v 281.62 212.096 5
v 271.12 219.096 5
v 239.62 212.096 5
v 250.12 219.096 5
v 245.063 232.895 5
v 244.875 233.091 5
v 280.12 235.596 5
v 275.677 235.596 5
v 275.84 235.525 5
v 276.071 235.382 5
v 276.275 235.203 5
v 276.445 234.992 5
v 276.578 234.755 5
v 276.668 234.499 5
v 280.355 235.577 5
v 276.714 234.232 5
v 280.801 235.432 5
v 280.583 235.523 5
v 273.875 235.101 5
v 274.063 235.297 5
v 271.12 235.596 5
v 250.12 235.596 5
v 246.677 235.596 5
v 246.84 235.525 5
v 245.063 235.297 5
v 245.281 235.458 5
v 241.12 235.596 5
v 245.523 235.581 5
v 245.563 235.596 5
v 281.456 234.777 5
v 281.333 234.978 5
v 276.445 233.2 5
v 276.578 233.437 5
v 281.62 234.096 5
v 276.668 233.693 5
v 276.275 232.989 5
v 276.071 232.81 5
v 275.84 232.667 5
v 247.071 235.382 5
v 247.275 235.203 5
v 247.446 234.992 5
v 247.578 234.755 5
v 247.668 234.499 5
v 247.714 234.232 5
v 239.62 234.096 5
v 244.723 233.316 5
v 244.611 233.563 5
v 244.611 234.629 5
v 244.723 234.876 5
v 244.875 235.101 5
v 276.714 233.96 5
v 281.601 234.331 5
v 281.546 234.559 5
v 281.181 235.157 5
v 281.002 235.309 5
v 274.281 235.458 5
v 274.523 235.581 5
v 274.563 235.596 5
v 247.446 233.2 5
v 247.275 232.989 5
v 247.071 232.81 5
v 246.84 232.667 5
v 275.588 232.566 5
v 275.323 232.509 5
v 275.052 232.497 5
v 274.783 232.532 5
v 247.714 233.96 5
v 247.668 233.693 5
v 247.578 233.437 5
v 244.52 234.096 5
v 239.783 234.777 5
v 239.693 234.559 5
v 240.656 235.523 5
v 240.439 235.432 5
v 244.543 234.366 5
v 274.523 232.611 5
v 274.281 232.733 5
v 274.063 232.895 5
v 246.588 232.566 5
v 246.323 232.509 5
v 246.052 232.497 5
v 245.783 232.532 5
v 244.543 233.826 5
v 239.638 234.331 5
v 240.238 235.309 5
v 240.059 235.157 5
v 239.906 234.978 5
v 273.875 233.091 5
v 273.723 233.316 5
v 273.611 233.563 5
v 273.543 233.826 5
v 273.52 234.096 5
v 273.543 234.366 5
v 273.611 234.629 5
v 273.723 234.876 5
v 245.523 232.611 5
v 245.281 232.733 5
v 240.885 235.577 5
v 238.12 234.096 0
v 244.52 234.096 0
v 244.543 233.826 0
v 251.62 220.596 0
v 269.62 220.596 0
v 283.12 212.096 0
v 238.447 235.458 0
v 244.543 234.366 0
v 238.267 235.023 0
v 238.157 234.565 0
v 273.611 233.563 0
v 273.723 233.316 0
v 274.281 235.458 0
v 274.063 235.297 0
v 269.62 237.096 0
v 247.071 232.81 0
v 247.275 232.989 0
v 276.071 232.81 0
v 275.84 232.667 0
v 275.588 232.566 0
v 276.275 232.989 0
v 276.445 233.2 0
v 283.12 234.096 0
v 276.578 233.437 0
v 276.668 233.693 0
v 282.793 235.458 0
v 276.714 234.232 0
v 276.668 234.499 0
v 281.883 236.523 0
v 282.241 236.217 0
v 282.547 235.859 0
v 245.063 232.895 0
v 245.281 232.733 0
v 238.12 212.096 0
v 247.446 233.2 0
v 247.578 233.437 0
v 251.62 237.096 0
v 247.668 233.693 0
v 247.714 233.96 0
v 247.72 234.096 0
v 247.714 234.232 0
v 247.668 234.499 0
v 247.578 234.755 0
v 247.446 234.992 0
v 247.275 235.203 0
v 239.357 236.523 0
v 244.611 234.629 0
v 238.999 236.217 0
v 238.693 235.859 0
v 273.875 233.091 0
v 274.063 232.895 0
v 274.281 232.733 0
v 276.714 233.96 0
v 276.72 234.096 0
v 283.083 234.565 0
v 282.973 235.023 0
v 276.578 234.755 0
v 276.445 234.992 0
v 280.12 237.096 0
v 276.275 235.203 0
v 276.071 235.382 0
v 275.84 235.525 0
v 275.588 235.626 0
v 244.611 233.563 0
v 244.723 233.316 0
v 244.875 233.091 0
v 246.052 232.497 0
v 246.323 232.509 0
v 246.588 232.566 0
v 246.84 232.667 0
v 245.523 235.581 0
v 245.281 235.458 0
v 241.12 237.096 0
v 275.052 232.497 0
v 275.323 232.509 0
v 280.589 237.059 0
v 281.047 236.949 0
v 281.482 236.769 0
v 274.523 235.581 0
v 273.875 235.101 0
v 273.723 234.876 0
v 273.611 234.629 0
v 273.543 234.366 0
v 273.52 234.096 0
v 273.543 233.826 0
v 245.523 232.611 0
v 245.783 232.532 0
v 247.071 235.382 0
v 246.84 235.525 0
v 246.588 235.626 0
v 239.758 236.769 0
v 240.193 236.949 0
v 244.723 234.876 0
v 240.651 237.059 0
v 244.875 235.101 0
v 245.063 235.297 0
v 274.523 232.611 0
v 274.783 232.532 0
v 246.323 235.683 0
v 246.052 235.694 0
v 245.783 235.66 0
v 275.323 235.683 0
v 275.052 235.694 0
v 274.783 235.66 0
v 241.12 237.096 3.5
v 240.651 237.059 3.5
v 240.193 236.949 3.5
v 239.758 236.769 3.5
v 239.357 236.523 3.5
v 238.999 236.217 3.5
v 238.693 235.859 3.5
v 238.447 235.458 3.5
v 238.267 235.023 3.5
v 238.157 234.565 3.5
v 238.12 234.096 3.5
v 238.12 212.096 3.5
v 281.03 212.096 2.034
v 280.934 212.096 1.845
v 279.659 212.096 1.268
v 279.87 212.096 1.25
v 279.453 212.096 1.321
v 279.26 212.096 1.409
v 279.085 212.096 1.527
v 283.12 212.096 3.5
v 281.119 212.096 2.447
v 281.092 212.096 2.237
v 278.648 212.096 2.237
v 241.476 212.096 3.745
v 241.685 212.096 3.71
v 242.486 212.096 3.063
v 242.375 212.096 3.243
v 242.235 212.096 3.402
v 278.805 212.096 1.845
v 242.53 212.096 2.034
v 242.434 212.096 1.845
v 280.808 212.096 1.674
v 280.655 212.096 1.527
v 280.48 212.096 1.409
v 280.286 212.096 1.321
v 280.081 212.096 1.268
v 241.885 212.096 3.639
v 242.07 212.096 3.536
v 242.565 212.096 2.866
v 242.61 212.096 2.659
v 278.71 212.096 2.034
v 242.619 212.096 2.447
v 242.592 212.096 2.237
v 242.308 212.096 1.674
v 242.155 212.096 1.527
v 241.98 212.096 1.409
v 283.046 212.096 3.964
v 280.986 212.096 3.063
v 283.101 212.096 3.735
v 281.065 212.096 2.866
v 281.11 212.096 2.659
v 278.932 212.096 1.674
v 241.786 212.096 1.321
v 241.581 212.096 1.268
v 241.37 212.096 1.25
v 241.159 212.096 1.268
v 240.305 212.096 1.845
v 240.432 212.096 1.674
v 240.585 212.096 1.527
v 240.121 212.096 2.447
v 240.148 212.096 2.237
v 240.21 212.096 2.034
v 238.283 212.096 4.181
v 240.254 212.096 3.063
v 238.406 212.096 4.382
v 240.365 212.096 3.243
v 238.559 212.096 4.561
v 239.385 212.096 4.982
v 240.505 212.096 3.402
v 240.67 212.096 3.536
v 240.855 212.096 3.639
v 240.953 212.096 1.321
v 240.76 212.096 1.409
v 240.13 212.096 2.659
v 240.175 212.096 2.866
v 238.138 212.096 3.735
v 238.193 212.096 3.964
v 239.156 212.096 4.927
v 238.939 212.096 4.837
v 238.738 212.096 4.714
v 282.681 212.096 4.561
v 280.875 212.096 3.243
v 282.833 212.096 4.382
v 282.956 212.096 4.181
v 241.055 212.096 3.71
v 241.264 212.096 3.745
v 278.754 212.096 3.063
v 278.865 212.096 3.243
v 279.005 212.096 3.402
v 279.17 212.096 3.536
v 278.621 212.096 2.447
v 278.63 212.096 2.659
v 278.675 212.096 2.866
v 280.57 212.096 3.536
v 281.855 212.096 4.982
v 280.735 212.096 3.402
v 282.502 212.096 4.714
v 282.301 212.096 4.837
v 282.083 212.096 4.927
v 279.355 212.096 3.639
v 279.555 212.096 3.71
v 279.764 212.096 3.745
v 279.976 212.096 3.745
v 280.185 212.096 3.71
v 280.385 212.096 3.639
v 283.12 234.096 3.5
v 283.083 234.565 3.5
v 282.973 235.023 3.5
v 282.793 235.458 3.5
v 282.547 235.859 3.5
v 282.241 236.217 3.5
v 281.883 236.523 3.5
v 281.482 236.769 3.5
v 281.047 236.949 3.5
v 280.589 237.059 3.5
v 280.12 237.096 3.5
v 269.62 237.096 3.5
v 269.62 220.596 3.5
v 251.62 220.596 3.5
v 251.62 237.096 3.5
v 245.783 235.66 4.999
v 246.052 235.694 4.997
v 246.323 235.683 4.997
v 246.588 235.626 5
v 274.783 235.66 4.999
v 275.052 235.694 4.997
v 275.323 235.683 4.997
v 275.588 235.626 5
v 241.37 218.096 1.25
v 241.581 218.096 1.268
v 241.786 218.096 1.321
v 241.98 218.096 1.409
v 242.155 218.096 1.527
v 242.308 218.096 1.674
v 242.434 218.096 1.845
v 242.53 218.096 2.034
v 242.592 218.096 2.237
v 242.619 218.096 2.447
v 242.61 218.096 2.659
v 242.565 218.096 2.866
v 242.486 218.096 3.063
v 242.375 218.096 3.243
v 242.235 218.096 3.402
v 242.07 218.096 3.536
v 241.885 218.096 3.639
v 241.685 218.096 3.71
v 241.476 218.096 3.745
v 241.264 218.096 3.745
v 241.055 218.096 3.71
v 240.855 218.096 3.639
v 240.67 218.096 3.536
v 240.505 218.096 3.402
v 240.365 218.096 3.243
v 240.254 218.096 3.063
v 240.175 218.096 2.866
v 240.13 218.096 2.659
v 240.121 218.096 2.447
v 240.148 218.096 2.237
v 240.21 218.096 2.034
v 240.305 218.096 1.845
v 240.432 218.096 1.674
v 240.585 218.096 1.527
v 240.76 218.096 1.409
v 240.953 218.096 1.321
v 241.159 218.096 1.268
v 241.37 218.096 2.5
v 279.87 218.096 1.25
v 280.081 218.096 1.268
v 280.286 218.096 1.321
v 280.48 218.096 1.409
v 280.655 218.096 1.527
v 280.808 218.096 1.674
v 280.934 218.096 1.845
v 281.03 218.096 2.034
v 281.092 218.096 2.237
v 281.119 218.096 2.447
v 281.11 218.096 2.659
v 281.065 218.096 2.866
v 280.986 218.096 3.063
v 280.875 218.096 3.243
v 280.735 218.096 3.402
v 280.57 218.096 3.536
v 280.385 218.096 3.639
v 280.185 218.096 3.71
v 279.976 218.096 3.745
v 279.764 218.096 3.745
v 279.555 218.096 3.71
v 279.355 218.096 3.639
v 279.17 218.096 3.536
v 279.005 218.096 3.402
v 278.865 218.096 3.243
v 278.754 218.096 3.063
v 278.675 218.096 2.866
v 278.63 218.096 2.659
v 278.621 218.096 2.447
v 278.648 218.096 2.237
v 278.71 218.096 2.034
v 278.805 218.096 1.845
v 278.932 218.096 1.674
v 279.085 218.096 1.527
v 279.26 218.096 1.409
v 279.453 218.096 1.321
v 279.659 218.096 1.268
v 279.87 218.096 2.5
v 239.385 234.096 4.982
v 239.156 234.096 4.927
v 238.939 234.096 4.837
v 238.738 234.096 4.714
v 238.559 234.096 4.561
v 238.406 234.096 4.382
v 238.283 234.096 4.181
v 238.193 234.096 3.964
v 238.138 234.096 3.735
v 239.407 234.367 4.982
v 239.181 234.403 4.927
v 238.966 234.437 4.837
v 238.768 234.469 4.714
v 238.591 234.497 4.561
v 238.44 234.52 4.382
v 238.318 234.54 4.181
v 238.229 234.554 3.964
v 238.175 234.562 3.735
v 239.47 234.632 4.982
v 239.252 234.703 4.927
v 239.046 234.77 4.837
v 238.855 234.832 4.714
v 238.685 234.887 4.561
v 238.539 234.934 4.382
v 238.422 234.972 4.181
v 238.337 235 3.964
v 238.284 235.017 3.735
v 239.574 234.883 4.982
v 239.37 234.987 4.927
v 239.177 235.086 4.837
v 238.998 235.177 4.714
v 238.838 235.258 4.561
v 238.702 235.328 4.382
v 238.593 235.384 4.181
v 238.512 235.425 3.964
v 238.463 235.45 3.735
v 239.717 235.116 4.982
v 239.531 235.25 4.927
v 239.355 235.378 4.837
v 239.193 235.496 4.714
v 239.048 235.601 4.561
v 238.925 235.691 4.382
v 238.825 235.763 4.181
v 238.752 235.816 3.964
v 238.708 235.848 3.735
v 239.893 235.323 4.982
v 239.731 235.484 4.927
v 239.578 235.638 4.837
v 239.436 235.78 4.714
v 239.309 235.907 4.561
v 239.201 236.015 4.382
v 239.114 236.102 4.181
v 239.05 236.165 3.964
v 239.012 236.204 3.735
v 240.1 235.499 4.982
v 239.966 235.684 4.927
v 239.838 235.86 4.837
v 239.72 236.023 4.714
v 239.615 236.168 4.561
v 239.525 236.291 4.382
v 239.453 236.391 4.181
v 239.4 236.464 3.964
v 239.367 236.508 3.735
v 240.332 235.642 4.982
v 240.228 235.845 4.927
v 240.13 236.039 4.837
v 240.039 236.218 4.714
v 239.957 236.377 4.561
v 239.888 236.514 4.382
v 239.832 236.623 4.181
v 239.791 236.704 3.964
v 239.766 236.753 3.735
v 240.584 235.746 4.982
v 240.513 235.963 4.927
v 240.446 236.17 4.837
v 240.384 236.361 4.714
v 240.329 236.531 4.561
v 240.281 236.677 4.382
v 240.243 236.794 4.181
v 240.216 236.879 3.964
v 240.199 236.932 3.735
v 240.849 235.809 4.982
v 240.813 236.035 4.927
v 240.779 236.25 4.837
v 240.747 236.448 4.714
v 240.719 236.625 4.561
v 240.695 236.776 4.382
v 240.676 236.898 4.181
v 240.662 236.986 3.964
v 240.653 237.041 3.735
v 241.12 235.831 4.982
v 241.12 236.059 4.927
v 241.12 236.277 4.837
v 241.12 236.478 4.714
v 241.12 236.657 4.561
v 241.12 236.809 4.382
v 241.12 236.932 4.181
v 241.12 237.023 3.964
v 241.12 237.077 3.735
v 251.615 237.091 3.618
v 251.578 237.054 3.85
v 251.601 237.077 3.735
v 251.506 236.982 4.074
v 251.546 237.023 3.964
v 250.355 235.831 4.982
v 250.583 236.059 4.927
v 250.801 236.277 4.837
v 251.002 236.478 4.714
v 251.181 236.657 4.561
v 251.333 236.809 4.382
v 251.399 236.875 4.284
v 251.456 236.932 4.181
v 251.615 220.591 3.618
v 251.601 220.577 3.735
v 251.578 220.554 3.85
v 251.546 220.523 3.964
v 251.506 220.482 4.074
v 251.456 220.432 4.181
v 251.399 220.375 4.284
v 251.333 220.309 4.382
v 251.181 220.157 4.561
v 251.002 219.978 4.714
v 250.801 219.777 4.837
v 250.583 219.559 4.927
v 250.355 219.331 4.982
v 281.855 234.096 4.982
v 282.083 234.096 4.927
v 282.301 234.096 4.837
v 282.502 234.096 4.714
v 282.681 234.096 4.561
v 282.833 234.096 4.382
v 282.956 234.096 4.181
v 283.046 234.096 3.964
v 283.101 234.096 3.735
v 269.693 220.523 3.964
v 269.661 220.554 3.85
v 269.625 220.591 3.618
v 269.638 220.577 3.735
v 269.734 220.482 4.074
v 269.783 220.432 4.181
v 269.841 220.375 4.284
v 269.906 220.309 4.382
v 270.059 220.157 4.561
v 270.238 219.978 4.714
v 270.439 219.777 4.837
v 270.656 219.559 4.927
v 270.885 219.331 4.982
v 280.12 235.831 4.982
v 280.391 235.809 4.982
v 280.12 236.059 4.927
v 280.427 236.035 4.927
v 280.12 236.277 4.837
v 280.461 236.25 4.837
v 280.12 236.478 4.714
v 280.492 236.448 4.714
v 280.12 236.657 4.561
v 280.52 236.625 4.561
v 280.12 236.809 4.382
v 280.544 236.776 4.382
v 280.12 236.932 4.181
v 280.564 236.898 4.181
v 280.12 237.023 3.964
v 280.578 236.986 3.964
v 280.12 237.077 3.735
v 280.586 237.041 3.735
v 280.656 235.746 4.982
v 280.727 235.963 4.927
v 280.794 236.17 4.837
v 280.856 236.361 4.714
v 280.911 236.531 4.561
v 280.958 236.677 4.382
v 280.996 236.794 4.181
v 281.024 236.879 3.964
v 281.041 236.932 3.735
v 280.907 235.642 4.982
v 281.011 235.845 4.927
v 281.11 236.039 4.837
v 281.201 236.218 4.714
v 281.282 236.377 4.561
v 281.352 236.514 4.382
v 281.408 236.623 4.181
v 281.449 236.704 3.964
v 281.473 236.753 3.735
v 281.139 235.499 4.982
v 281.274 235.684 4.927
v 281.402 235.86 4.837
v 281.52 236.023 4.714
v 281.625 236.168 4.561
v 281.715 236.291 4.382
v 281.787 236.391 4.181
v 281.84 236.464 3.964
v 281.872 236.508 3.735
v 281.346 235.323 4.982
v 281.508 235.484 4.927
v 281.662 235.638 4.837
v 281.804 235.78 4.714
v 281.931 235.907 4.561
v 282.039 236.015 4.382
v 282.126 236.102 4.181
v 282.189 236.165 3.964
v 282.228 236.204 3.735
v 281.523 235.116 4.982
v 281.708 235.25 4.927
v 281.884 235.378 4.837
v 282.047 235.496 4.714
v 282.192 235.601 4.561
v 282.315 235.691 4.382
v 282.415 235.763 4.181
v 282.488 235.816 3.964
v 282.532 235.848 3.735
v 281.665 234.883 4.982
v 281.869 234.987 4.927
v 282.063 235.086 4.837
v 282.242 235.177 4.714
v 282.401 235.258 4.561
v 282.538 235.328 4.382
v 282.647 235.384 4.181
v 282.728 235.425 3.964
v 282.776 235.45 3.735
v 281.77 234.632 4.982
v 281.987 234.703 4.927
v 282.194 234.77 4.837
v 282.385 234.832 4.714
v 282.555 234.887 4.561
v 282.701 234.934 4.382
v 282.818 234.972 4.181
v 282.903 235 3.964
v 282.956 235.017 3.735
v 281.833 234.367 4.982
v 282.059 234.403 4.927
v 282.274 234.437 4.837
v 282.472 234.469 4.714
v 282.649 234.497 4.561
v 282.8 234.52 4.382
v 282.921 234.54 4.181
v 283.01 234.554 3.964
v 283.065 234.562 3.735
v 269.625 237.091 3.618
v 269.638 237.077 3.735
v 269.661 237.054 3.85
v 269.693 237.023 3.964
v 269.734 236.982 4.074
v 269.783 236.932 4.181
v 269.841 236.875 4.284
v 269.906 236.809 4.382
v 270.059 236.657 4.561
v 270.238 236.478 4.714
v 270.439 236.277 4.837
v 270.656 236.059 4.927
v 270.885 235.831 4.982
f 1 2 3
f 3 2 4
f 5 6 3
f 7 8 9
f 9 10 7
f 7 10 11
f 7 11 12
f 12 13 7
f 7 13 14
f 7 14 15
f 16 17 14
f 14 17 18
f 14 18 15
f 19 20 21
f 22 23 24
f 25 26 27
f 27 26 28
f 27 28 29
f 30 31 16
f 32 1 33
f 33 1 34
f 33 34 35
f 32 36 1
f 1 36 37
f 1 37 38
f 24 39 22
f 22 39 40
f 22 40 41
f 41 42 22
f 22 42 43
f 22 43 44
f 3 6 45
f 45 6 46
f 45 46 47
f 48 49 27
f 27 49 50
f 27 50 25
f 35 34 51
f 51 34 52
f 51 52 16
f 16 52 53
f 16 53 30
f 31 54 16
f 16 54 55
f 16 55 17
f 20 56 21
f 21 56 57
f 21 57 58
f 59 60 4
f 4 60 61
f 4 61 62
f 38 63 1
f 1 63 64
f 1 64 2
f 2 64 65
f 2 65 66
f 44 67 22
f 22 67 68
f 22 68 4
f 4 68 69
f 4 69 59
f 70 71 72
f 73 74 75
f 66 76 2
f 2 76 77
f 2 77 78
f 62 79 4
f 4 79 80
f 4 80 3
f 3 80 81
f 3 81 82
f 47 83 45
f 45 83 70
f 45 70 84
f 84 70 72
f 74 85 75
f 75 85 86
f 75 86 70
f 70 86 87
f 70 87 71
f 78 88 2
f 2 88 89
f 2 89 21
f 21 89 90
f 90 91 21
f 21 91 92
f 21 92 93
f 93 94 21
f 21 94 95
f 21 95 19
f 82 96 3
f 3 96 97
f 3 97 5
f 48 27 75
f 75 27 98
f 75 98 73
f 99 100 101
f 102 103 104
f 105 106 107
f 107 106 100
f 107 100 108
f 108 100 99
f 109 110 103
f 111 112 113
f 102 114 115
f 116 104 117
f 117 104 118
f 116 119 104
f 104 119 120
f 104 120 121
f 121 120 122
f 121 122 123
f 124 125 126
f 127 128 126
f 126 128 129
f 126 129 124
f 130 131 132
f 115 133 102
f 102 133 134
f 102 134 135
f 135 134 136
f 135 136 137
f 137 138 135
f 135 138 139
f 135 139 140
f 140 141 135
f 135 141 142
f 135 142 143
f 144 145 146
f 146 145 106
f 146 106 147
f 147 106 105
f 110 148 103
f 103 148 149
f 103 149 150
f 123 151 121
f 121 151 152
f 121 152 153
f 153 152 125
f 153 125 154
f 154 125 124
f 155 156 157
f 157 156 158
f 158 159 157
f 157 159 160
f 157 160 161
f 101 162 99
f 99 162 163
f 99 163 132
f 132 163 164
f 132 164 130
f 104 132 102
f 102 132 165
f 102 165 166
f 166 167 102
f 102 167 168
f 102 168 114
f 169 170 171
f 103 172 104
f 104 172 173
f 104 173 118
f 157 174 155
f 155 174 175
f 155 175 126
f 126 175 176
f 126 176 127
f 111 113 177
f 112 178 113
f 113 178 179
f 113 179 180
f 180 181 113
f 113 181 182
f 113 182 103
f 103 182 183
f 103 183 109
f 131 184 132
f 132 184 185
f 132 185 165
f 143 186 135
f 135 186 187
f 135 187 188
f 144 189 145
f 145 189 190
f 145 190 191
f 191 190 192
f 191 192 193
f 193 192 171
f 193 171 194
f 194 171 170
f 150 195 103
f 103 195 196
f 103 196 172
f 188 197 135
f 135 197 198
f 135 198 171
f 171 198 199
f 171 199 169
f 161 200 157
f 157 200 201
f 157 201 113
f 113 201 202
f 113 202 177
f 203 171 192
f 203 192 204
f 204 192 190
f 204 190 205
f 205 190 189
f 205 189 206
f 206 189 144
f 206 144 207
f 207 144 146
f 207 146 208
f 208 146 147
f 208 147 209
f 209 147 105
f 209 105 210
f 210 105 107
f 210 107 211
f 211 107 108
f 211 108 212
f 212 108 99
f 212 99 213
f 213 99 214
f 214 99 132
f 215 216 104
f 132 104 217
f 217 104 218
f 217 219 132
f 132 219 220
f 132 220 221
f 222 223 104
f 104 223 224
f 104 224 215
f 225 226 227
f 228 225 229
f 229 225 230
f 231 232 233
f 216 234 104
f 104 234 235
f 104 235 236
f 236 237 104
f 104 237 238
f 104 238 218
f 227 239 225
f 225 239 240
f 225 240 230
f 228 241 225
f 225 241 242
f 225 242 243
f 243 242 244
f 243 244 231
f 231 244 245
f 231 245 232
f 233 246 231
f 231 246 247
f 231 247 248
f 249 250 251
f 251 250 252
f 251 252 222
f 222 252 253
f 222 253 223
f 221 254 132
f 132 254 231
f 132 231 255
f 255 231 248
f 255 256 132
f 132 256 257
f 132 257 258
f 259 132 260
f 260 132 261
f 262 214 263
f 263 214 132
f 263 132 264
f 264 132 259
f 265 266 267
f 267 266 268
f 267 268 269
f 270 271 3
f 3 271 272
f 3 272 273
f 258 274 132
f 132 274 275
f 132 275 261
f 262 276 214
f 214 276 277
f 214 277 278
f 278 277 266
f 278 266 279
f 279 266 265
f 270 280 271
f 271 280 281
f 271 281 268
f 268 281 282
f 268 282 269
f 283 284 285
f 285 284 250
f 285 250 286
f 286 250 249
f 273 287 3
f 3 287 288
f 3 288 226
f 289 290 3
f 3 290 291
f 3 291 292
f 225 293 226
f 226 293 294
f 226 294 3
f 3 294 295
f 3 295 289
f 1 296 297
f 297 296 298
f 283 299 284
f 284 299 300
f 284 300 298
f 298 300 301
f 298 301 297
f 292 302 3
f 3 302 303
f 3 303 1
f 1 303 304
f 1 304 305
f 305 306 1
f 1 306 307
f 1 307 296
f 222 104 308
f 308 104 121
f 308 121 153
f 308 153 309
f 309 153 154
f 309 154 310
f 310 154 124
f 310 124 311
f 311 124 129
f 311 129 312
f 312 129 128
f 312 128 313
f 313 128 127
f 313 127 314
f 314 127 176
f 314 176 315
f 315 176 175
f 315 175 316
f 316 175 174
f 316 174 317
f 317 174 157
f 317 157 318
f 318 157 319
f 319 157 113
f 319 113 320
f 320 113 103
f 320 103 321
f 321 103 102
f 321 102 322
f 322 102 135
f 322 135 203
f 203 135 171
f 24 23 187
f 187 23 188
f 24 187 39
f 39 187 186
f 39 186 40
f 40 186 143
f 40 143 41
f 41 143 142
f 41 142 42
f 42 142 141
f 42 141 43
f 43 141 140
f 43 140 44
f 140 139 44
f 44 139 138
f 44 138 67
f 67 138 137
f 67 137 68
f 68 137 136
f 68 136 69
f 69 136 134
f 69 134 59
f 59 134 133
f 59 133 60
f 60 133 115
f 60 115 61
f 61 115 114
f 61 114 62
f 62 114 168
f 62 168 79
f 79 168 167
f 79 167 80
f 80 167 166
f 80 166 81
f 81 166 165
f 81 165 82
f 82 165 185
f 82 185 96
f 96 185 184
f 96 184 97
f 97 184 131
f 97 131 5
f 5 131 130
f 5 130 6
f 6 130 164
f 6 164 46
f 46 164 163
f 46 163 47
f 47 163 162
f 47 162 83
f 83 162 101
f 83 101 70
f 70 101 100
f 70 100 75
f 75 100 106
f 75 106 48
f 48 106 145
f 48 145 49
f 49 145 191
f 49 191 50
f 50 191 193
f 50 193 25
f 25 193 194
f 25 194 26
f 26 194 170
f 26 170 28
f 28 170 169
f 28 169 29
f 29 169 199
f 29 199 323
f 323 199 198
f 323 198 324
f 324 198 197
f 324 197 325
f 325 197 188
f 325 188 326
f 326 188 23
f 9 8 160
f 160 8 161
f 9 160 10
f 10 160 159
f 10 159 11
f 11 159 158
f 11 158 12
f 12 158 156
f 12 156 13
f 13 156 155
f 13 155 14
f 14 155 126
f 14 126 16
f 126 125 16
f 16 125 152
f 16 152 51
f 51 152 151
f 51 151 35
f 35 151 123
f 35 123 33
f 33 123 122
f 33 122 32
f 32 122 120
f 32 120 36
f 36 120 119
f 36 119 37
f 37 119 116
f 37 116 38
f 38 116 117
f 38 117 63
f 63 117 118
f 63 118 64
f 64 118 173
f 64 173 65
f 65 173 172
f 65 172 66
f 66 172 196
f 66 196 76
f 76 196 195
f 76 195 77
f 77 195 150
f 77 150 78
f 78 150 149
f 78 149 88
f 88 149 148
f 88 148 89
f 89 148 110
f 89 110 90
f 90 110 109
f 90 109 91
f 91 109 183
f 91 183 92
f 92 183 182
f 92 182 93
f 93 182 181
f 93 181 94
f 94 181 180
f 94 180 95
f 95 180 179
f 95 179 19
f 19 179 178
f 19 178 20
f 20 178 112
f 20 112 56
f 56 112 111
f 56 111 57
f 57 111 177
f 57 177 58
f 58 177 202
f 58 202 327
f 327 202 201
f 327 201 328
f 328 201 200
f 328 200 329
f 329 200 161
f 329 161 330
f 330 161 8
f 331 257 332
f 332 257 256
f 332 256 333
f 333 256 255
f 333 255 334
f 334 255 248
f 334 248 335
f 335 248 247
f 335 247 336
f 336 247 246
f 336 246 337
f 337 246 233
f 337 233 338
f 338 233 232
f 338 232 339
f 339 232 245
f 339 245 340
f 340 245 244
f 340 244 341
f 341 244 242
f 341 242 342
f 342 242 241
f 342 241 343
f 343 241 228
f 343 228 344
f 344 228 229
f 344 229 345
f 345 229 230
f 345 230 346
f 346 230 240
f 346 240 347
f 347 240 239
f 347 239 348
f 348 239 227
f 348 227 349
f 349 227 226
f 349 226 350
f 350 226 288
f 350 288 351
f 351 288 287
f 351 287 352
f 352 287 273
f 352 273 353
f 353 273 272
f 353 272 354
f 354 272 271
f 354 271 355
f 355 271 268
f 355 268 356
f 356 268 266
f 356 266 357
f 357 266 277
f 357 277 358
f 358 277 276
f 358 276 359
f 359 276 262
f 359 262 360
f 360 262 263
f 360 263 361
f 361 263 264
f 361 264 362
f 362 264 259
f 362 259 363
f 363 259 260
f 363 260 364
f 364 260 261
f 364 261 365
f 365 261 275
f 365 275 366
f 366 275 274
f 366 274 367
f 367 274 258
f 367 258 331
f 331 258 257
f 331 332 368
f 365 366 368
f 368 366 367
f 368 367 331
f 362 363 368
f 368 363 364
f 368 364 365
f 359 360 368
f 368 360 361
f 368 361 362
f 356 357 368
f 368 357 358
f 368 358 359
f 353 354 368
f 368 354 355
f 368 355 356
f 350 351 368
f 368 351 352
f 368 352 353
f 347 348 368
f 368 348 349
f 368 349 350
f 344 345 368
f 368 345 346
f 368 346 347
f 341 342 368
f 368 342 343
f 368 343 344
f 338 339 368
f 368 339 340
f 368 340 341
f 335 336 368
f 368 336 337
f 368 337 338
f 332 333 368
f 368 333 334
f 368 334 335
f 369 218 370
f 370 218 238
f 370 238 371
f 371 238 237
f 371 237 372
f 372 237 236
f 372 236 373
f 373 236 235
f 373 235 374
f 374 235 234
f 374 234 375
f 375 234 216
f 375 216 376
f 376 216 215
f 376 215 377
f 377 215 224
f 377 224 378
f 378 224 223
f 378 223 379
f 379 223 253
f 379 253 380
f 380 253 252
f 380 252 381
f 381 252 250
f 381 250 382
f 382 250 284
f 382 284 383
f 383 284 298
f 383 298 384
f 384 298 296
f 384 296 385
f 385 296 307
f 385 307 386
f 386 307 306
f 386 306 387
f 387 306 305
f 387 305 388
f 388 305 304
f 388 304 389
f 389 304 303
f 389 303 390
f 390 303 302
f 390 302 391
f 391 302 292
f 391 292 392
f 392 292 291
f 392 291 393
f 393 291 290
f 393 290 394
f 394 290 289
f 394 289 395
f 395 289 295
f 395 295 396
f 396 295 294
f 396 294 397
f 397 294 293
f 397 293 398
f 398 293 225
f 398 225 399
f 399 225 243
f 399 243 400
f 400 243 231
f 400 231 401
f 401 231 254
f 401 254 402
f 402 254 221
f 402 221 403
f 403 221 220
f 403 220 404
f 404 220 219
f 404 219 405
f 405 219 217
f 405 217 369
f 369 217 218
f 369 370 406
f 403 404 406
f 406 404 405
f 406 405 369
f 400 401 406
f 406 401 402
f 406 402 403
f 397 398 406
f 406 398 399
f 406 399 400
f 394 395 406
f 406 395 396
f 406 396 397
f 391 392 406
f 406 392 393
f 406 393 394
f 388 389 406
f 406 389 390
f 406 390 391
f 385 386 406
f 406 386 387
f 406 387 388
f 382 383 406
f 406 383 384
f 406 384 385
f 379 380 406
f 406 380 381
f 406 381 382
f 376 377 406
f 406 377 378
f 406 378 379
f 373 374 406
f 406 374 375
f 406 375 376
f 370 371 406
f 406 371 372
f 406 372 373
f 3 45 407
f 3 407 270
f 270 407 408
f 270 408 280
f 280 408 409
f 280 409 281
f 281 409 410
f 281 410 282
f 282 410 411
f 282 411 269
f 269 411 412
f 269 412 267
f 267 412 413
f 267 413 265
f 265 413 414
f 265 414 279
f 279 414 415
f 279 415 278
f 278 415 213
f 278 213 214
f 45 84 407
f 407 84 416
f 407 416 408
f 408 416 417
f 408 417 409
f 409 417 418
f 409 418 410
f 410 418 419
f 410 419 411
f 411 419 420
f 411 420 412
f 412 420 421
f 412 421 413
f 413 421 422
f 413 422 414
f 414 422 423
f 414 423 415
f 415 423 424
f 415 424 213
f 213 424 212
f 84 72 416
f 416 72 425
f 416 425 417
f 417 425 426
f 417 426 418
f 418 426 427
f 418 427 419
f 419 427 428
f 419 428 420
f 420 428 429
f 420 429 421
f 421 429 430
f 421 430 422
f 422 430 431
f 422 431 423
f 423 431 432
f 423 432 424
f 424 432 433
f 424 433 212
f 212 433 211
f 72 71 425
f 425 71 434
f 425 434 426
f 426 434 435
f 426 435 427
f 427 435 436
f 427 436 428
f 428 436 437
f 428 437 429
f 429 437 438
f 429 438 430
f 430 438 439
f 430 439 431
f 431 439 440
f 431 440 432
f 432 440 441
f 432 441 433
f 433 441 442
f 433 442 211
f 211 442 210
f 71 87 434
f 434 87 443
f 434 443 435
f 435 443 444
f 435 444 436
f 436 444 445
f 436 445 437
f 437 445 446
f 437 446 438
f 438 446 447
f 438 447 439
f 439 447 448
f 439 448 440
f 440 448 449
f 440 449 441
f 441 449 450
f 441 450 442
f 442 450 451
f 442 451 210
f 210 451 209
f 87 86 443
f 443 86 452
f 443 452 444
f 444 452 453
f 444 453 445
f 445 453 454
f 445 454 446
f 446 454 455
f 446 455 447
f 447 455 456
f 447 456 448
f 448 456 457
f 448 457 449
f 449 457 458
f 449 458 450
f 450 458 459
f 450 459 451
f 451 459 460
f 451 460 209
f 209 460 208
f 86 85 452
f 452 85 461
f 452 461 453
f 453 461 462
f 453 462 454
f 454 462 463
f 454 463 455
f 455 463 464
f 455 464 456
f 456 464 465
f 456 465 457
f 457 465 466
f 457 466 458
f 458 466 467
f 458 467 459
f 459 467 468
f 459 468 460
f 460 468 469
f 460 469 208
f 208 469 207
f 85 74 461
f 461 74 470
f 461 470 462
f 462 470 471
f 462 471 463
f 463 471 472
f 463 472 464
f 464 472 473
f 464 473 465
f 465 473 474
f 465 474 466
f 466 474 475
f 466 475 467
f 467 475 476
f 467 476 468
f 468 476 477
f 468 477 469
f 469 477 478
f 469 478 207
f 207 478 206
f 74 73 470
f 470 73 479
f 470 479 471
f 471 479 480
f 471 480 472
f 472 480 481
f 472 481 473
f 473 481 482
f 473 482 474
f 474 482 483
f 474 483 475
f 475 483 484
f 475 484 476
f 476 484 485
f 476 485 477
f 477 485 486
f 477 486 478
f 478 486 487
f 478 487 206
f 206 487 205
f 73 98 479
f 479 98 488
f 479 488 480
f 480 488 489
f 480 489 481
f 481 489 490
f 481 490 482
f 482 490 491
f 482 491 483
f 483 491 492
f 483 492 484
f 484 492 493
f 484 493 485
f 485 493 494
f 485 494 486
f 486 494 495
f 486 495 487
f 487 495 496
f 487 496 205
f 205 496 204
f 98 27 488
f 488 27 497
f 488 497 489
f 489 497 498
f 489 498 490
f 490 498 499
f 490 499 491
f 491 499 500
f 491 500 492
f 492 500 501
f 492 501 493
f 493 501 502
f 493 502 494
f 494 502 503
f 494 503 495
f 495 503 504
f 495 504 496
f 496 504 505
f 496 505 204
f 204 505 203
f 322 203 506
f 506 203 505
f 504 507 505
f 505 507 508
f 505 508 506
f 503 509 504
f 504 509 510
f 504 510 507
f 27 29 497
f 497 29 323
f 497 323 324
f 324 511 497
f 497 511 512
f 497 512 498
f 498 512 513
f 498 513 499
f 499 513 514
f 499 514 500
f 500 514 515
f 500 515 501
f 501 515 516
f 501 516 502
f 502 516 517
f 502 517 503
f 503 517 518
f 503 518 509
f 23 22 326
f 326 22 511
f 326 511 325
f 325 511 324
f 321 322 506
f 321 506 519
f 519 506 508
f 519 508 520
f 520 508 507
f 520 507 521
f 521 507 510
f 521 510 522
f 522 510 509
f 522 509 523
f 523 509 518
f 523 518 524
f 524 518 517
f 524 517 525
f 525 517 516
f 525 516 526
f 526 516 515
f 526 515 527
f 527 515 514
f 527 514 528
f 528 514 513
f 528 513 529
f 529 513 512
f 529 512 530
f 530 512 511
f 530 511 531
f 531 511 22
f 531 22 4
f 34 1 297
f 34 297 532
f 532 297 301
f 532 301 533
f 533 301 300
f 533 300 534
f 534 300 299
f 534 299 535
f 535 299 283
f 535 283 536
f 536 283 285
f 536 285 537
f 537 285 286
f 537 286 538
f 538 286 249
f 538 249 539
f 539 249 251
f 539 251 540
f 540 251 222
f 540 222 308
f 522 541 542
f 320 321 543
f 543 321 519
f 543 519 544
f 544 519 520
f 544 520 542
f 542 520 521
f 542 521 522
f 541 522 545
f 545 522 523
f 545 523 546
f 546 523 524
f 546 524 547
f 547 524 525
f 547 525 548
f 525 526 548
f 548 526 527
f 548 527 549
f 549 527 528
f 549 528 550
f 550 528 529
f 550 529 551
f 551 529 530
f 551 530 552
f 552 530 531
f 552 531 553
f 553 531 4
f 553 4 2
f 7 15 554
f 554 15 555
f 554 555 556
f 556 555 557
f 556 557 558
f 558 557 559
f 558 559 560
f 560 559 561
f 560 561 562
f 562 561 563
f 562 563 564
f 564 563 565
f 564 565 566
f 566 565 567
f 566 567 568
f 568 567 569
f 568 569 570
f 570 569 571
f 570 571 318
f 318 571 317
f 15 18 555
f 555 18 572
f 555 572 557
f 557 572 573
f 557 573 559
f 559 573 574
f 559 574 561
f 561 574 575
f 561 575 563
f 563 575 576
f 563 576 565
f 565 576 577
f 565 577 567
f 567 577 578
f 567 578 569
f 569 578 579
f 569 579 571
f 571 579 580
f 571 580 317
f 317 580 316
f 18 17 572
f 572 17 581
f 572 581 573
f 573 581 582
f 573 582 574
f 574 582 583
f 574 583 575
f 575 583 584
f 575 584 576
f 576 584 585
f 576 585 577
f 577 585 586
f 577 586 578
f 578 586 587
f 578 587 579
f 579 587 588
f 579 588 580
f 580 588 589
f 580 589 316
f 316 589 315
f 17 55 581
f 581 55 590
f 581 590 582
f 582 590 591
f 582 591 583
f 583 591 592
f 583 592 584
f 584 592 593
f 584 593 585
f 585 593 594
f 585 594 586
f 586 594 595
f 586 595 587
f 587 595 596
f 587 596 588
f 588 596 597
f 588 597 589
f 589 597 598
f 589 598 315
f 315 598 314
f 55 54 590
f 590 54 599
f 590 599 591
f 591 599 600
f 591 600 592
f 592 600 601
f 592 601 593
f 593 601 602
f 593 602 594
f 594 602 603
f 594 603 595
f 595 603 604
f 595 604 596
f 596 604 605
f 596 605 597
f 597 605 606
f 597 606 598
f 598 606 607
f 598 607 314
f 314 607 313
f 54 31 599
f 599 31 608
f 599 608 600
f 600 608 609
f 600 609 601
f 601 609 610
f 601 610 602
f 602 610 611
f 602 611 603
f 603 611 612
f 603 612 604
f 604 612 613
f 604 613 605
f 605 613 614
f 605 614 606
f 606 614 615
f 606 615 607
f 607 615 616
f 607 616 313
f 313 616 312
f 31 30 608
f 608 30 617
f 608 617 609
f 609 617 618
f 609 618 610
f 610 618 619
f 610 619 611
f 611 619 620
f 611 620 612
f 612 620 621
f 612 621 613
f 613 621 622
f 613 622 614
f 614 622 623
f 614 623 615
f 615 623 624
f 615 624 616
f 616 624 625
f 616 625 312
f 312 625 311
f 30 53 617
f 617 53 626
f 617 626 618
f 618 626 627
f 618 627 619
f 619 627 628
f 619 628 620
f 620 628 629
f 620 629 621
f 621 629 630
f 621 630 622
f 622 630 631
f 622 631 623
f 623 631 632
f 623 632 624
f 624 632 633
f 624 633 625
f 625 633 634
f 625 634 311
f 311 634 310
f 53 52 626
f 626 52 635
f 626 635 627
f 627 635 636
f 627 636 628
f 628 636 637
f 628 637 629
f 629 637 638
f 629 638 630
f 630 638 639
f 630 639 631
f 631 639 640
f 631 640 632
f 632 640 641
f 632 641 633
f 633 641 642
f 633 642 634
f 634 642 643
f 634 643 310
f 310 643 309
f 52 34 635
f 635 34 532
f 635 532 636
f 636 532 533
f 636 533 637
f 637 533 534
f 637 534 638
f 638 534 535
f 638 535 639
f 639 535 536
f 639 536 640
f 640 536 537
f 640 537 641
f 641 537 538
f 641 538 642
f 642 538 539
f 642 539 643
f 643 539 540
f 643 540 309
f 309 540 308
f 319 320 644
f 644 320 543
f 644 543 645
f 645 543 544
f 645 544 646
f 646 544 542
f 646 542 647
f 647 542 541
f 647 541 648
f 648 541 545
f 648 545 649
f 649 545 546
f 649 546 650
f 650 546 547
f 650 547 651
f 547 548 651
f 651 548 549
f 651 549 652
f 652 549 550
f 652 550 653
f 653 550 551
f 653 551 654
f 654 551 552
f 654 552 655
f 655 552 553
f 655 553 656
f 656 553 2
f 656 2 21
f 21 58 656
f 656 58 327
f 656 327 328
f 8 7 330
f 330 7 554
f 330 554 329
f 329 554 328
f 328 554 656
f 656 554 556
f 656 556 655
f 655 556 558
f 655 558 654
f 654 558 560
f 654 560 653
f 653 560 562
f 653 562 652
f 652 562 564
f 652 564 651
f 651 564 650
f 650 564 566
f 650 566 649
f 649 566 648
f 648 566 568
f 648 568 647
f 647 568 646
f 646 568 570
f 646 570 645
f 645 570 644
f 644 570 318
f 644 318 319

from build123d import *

# Parameters (mm, degrees)
MODEL_R             = 1.6
EXTRUDE_1_DEPTH     = 5
SKETCH_2_R          = 1.25
CUT_EXTRUDE_1_DEPTH = 6
FILLET_1_R          = 1.5


with BuildPart() as part:
    # Model → 凸台-拉伸1 (new body)
    with BuildSketch(Plane.XY):
        with BuildLine():
            Line((241.119901236, 237.095927438), (251.619901236, 237.095927438))
            Line((251.619901236, 237.095927438), (251.619901236, 220.595927438))
            Line((251.619901236, 220.595927438), (269.619901236, 220.595927438))
            Line((269.619901236, 220.595927438), (269.619901236, 237.095927438))
            Line((269.619901236, 237.095927438), (280.119901236, 237.095927438))
            ThreePointArc((280.119901236, 237.095927438), (282.241221579, 236.217247782), (283.119901236, 234.095927438))
            Line((283.119901236, 234.095927438), (283.119901236, 212.095927438))
            Line((283.119901236, 212.095927438), (238.119901236, 212.095927438))
            Line((238.119901236, 212.095927438), (238.119901236, 234.095927438))
            ThreePointArc((238.119901236, 234.095927438), (238.998580892, 236.217247782), (241.119901236, 237.095927438))
        make_face()
        with Locations((246.119901236, 234.095927438)):
            Circle(MODEL_R, mode=Mode.SUBTRACT)
        with Locations((275.119901236, 234.095927438)):
            Circle(MODEL_R, mode=Mode.SUBTRACT)
    extrude(amount=EXTRUDE_1_DEPTH)

    # 草图2 → 切除-拉伸1 (cut)
    with BuildSketch(Plane.XZ.offset(-212.095927438)):
        with Locations(Location((241.369901236, 2.5, 0), (0, 0, 270))):
            Circle(SKETCH_2_R)
        with Locations(Location((279.869901236, 2.5, 0), (0, 0, 270))):
            Circle(SKETCH_2_R)
    extrude(amount=-CUT_EXTRUDE_1_DEPTH, mode=Mode.SUBTRACT)

    # 圆角1
    # the kernel refuses this fillet: 1.5 mm, written as the material it takes off along each edge
    with BuildSketch(Plane(origin=(283.119901236, 234.095927438, 5), x_dir=(0, 0, -1), z_dir=(0, -1, 0))) as fillet_1_piece_1:
        with BuildLine():
            CenterArc((FILLET_1_R, -FILLET_1_R), FILLET_1_R, 90, 90)
            Line((0, -FILLET_1_R), (0, 0))
            Line((0, 0), (FILLET_1_R, 0))
        make_face()
    extrude(amount=25.75, mode=Mode.SUBTRACT)
    with BuildSketch(Plane(origin=(280.119901236, 234.095927438, 5), x_dir=(0, 1, 0), z_dir=(-1, 0, 0))) as fillet_1_piece_2:
        with BuildLine():
            CenterArc((3 - FILLET_1_R, FILLET_1_R), FILLET_1_R, 270, 90)
            Line((3 - FILLET_1_R, 0), (3, 0))
            Line((3, 0), (3, FILLET_1_R))
        make_face()
    revolve(axis=Axis((280.119901236, 234.095927438, 5), (0, 0, -1)), revolution_arc=90, mode=Mode.SUBTRACT)
    with BuildSketch(Plane(origin=(265.869901236, 237.095927438, 5), x_dir=(0, 0, -1), z_dir=(1, 0, 0))) as fillet_1_piece_3:
        with BuildLine():
            CenterArc((FILLET_1_R, -FILLET_1_R), FILLET_1_R, 90, 90)
            Line((0, -FILLET_1_R), (0, 0))
            Line((0, 0), (FILLET_1_R, 0))
        make_face()
    extrude(amount=14.25, mode=Mode.SUBTRACT)
    with BuildSketch(Plane(origin=(269.619901236, 220.595927438, 5), x_dir=(1, 0, 0), z_dir=(0, 1, 0)), Plane(origin=(251.619901236, 240.845927438, 5), x_dir=(-1, 0, 0), z_dir=(0, -1, 0))) as fillet_1_piece_4:
        with BuildLine():
            CenterArc((FILLET_1_R, FILLET_1_R), FILLET_1_R, 180, 90)
            Line((0, FILLET_1_R), (0, 0))
            Line((0, 0), (FILLET_1_R, 0))
        make_face()
    extrude(amount=20.25, mode=Mode.SUBTRACT)
    with BuildSketch(Plane(origin=(251.619901236, 220.595927438, 5), x_dir=(0, -1, 0), z_dir=(1, 0, 0))) as fillet_1_piece_5:
        with BuildLine():
            CenterArc((FILLET_1_R, FILLET_1_R), FILLET_1_R, 180, 90)
            Line((0, FILLET_1_R), (0, 0))
            Line((0, 0), (FILLET_1_R, 0))
        make_face()
    extrude(amount=18, mode=Mode.SUBTRACT)
    with BuildSketch(Plane(origin=(241.119901236, 237.095927438, 5), x_dir=(0, -1, 0), z_dir=(1, 0, 0))) as fillet_1_piece_6:
        with BuildLine():
            CenterArc((FILLET_1_R, FILLET_1_R), FILLET_1_R, 180, 90)
            Line((0, FILLET_1_R), (0, 0))
            Line((0, 0), (FILLET_1_R, 0))
        make_face()
    extrude(amount=14.25, mode=Mode.SUBTRACT)
    with BuildSketch(Plane(origin=(241.119901236, 234.095927438, 5), x_dir=(-1, 0, 0), z_dir=(0, -1, 0))) as fillet_1_piece_7:
        with BuildLine():
            CenterArc((3 - FILLET_1_R, FILLET_1_R), FILLET_1_R, 270, 90)
            Line((3, FILLET_1_R), (3, 0))
            Line((3, 0), (3 - FILLET_1_R, 0))
        make_face()
    revolve(axis=Axis((241.119901236, 234.095927438, 5), (0, 0, -1)), revolution_arc=90, mode=Mode.SUBTRACT)
    with BuildSketch(Plane(origin=(238.119901236, 208.345927438, 5), x_dir=(1, 0, 0), z_dir=(0, 1, 0))) as fillet_1_piece_8:
        with BuildLine():
            CenterArc((FILLET_1_R, FILLET_1_R), FILLET_1_R, 180, 90)
            Line((0, FILLET_1_R), (0, 0))
            Line((0, 0), (FILLET_1_R, 0))
        make_face()
    extrude(amount=25.75, mode=Mode.SUBTRACT)
    with BuildSketch(Plane(origin=(251.619901236, 220.595927438, 5), x_dir=(0, -1, 0), z_dir=(1, 0, 0))) as fillet_1_piece_9a_section:
        with BuildLine():
            CenterArc((FILLET_1_R, FILLET_1_R), FILLET_1_R, 180, 90)
            Line((0, FILLET_1_R), (0, 0))
            Line((0, 0), (FILLET_1_R, 0))
        make_face()
    fillet_1_piece_9a = extrude(amount=21.75, mode=Mode.PRIVATE)
    fillet_1_piece_9a = split(fillet_1_piece_9a, bisect_by=Plane(origin=(269.619901236, 220.256334767, 4.660407329), z_dir=(1, 0, 0)), keep=Keep.TOP, mode=Mode.PRIVATE)
    with BuildSketch(Plane(origin=(269.619901236, 216.845927438, 5), x_dir=(1, 0, 0), z_dir=(0, 1, 0))) as fillet_1_piece_9b_section:
        with BuildLine():
            CenterArc((FILLET_1_R, FILLET_1_R), FILLET_1_R, 180, 90)
            Line((0, FILLET_1_R), (0, 0))
            Line((0, 0), (FILLET_1_R, 0))
        make_face()
    fillet_1_piece_9b = extrude(amount=24, mode=Mode.PRIVATE)
    fillet_1_piece_9b = split(fillet_1_piece_9b, bisect_by=Plane(origin=(269.959493907, 220.595927438, 4.660407329), z_dir=(0, -1, 0)), keep=Keep.TOP, mode=Mode.PRIVATE)
    fillet_1_piece_9 = fillet_1_piece_9a & fillet_1_piece_9b
    add(fillet_1_piece_9, mode=Mode.SUBTRACT)
    with BuildSketch(Plane(origin=(251.619901236, 240.845927438, 5), x_dir=(-1, 0, 0), z_dir=(0, -1, 0))) as fillet_1_piece_10a_section:
        with BuildLine():
            CenterArc((FILLET_1_R, FILLET_1_R), FILLET_1_R, 180, 90)
            Line((0, FILLET_1_R), (0, 0))
            Line((0, 0), (FILLET_1_R, 0))
        make_face()
    fillet_1_piece_10a = extrude(amount=24, mode=Mode.PRIVATE)
    fillet_1_piece_10a = split(fillet_1_piece_10a, bisect_by=Plane(origin=(251.280308564, 220.595927438, 4.660407329), z_dir=(0, -1, 0)), keep=Keep.TOP, mode=Mode.PRIVATE)
    with BuildSketch(Plane(origin=(247.869901236, 220.595927438, 5), x_dir=(0, -1, 0), z_dir=(1, 0, 0))) as fillet_1_piece_10b_section:
        with BuildLine():
            CenterArc((FILLET_1_R, FILLET_1_R), FILLET_1_R, 180, 90)
            Line((0, FILLET_1_R), (0, 0))
            Line((0, 0), (FILLET_1_R, 0))
        make_face()
    fillet_1_piece_10b = extrude(amount=21.75, mode=Mode.PRIVATE)
    fillet_1_piece_10b = split(fillet_1_piece_10b, bisect_by=Plane(origin=(251.619901236, 220.256334767, 4.660407329), z_dir=(-1, 0, 0)), keep=Keep.TOP, mode=Mode.PRIVATE)
    fillet_1_piece_10 = fillet_1_piece_10a & fillet_1_piece_10b
    add(fillet_1_piece_10, mode=Mode.SUBTRACT)


solid = part.part
